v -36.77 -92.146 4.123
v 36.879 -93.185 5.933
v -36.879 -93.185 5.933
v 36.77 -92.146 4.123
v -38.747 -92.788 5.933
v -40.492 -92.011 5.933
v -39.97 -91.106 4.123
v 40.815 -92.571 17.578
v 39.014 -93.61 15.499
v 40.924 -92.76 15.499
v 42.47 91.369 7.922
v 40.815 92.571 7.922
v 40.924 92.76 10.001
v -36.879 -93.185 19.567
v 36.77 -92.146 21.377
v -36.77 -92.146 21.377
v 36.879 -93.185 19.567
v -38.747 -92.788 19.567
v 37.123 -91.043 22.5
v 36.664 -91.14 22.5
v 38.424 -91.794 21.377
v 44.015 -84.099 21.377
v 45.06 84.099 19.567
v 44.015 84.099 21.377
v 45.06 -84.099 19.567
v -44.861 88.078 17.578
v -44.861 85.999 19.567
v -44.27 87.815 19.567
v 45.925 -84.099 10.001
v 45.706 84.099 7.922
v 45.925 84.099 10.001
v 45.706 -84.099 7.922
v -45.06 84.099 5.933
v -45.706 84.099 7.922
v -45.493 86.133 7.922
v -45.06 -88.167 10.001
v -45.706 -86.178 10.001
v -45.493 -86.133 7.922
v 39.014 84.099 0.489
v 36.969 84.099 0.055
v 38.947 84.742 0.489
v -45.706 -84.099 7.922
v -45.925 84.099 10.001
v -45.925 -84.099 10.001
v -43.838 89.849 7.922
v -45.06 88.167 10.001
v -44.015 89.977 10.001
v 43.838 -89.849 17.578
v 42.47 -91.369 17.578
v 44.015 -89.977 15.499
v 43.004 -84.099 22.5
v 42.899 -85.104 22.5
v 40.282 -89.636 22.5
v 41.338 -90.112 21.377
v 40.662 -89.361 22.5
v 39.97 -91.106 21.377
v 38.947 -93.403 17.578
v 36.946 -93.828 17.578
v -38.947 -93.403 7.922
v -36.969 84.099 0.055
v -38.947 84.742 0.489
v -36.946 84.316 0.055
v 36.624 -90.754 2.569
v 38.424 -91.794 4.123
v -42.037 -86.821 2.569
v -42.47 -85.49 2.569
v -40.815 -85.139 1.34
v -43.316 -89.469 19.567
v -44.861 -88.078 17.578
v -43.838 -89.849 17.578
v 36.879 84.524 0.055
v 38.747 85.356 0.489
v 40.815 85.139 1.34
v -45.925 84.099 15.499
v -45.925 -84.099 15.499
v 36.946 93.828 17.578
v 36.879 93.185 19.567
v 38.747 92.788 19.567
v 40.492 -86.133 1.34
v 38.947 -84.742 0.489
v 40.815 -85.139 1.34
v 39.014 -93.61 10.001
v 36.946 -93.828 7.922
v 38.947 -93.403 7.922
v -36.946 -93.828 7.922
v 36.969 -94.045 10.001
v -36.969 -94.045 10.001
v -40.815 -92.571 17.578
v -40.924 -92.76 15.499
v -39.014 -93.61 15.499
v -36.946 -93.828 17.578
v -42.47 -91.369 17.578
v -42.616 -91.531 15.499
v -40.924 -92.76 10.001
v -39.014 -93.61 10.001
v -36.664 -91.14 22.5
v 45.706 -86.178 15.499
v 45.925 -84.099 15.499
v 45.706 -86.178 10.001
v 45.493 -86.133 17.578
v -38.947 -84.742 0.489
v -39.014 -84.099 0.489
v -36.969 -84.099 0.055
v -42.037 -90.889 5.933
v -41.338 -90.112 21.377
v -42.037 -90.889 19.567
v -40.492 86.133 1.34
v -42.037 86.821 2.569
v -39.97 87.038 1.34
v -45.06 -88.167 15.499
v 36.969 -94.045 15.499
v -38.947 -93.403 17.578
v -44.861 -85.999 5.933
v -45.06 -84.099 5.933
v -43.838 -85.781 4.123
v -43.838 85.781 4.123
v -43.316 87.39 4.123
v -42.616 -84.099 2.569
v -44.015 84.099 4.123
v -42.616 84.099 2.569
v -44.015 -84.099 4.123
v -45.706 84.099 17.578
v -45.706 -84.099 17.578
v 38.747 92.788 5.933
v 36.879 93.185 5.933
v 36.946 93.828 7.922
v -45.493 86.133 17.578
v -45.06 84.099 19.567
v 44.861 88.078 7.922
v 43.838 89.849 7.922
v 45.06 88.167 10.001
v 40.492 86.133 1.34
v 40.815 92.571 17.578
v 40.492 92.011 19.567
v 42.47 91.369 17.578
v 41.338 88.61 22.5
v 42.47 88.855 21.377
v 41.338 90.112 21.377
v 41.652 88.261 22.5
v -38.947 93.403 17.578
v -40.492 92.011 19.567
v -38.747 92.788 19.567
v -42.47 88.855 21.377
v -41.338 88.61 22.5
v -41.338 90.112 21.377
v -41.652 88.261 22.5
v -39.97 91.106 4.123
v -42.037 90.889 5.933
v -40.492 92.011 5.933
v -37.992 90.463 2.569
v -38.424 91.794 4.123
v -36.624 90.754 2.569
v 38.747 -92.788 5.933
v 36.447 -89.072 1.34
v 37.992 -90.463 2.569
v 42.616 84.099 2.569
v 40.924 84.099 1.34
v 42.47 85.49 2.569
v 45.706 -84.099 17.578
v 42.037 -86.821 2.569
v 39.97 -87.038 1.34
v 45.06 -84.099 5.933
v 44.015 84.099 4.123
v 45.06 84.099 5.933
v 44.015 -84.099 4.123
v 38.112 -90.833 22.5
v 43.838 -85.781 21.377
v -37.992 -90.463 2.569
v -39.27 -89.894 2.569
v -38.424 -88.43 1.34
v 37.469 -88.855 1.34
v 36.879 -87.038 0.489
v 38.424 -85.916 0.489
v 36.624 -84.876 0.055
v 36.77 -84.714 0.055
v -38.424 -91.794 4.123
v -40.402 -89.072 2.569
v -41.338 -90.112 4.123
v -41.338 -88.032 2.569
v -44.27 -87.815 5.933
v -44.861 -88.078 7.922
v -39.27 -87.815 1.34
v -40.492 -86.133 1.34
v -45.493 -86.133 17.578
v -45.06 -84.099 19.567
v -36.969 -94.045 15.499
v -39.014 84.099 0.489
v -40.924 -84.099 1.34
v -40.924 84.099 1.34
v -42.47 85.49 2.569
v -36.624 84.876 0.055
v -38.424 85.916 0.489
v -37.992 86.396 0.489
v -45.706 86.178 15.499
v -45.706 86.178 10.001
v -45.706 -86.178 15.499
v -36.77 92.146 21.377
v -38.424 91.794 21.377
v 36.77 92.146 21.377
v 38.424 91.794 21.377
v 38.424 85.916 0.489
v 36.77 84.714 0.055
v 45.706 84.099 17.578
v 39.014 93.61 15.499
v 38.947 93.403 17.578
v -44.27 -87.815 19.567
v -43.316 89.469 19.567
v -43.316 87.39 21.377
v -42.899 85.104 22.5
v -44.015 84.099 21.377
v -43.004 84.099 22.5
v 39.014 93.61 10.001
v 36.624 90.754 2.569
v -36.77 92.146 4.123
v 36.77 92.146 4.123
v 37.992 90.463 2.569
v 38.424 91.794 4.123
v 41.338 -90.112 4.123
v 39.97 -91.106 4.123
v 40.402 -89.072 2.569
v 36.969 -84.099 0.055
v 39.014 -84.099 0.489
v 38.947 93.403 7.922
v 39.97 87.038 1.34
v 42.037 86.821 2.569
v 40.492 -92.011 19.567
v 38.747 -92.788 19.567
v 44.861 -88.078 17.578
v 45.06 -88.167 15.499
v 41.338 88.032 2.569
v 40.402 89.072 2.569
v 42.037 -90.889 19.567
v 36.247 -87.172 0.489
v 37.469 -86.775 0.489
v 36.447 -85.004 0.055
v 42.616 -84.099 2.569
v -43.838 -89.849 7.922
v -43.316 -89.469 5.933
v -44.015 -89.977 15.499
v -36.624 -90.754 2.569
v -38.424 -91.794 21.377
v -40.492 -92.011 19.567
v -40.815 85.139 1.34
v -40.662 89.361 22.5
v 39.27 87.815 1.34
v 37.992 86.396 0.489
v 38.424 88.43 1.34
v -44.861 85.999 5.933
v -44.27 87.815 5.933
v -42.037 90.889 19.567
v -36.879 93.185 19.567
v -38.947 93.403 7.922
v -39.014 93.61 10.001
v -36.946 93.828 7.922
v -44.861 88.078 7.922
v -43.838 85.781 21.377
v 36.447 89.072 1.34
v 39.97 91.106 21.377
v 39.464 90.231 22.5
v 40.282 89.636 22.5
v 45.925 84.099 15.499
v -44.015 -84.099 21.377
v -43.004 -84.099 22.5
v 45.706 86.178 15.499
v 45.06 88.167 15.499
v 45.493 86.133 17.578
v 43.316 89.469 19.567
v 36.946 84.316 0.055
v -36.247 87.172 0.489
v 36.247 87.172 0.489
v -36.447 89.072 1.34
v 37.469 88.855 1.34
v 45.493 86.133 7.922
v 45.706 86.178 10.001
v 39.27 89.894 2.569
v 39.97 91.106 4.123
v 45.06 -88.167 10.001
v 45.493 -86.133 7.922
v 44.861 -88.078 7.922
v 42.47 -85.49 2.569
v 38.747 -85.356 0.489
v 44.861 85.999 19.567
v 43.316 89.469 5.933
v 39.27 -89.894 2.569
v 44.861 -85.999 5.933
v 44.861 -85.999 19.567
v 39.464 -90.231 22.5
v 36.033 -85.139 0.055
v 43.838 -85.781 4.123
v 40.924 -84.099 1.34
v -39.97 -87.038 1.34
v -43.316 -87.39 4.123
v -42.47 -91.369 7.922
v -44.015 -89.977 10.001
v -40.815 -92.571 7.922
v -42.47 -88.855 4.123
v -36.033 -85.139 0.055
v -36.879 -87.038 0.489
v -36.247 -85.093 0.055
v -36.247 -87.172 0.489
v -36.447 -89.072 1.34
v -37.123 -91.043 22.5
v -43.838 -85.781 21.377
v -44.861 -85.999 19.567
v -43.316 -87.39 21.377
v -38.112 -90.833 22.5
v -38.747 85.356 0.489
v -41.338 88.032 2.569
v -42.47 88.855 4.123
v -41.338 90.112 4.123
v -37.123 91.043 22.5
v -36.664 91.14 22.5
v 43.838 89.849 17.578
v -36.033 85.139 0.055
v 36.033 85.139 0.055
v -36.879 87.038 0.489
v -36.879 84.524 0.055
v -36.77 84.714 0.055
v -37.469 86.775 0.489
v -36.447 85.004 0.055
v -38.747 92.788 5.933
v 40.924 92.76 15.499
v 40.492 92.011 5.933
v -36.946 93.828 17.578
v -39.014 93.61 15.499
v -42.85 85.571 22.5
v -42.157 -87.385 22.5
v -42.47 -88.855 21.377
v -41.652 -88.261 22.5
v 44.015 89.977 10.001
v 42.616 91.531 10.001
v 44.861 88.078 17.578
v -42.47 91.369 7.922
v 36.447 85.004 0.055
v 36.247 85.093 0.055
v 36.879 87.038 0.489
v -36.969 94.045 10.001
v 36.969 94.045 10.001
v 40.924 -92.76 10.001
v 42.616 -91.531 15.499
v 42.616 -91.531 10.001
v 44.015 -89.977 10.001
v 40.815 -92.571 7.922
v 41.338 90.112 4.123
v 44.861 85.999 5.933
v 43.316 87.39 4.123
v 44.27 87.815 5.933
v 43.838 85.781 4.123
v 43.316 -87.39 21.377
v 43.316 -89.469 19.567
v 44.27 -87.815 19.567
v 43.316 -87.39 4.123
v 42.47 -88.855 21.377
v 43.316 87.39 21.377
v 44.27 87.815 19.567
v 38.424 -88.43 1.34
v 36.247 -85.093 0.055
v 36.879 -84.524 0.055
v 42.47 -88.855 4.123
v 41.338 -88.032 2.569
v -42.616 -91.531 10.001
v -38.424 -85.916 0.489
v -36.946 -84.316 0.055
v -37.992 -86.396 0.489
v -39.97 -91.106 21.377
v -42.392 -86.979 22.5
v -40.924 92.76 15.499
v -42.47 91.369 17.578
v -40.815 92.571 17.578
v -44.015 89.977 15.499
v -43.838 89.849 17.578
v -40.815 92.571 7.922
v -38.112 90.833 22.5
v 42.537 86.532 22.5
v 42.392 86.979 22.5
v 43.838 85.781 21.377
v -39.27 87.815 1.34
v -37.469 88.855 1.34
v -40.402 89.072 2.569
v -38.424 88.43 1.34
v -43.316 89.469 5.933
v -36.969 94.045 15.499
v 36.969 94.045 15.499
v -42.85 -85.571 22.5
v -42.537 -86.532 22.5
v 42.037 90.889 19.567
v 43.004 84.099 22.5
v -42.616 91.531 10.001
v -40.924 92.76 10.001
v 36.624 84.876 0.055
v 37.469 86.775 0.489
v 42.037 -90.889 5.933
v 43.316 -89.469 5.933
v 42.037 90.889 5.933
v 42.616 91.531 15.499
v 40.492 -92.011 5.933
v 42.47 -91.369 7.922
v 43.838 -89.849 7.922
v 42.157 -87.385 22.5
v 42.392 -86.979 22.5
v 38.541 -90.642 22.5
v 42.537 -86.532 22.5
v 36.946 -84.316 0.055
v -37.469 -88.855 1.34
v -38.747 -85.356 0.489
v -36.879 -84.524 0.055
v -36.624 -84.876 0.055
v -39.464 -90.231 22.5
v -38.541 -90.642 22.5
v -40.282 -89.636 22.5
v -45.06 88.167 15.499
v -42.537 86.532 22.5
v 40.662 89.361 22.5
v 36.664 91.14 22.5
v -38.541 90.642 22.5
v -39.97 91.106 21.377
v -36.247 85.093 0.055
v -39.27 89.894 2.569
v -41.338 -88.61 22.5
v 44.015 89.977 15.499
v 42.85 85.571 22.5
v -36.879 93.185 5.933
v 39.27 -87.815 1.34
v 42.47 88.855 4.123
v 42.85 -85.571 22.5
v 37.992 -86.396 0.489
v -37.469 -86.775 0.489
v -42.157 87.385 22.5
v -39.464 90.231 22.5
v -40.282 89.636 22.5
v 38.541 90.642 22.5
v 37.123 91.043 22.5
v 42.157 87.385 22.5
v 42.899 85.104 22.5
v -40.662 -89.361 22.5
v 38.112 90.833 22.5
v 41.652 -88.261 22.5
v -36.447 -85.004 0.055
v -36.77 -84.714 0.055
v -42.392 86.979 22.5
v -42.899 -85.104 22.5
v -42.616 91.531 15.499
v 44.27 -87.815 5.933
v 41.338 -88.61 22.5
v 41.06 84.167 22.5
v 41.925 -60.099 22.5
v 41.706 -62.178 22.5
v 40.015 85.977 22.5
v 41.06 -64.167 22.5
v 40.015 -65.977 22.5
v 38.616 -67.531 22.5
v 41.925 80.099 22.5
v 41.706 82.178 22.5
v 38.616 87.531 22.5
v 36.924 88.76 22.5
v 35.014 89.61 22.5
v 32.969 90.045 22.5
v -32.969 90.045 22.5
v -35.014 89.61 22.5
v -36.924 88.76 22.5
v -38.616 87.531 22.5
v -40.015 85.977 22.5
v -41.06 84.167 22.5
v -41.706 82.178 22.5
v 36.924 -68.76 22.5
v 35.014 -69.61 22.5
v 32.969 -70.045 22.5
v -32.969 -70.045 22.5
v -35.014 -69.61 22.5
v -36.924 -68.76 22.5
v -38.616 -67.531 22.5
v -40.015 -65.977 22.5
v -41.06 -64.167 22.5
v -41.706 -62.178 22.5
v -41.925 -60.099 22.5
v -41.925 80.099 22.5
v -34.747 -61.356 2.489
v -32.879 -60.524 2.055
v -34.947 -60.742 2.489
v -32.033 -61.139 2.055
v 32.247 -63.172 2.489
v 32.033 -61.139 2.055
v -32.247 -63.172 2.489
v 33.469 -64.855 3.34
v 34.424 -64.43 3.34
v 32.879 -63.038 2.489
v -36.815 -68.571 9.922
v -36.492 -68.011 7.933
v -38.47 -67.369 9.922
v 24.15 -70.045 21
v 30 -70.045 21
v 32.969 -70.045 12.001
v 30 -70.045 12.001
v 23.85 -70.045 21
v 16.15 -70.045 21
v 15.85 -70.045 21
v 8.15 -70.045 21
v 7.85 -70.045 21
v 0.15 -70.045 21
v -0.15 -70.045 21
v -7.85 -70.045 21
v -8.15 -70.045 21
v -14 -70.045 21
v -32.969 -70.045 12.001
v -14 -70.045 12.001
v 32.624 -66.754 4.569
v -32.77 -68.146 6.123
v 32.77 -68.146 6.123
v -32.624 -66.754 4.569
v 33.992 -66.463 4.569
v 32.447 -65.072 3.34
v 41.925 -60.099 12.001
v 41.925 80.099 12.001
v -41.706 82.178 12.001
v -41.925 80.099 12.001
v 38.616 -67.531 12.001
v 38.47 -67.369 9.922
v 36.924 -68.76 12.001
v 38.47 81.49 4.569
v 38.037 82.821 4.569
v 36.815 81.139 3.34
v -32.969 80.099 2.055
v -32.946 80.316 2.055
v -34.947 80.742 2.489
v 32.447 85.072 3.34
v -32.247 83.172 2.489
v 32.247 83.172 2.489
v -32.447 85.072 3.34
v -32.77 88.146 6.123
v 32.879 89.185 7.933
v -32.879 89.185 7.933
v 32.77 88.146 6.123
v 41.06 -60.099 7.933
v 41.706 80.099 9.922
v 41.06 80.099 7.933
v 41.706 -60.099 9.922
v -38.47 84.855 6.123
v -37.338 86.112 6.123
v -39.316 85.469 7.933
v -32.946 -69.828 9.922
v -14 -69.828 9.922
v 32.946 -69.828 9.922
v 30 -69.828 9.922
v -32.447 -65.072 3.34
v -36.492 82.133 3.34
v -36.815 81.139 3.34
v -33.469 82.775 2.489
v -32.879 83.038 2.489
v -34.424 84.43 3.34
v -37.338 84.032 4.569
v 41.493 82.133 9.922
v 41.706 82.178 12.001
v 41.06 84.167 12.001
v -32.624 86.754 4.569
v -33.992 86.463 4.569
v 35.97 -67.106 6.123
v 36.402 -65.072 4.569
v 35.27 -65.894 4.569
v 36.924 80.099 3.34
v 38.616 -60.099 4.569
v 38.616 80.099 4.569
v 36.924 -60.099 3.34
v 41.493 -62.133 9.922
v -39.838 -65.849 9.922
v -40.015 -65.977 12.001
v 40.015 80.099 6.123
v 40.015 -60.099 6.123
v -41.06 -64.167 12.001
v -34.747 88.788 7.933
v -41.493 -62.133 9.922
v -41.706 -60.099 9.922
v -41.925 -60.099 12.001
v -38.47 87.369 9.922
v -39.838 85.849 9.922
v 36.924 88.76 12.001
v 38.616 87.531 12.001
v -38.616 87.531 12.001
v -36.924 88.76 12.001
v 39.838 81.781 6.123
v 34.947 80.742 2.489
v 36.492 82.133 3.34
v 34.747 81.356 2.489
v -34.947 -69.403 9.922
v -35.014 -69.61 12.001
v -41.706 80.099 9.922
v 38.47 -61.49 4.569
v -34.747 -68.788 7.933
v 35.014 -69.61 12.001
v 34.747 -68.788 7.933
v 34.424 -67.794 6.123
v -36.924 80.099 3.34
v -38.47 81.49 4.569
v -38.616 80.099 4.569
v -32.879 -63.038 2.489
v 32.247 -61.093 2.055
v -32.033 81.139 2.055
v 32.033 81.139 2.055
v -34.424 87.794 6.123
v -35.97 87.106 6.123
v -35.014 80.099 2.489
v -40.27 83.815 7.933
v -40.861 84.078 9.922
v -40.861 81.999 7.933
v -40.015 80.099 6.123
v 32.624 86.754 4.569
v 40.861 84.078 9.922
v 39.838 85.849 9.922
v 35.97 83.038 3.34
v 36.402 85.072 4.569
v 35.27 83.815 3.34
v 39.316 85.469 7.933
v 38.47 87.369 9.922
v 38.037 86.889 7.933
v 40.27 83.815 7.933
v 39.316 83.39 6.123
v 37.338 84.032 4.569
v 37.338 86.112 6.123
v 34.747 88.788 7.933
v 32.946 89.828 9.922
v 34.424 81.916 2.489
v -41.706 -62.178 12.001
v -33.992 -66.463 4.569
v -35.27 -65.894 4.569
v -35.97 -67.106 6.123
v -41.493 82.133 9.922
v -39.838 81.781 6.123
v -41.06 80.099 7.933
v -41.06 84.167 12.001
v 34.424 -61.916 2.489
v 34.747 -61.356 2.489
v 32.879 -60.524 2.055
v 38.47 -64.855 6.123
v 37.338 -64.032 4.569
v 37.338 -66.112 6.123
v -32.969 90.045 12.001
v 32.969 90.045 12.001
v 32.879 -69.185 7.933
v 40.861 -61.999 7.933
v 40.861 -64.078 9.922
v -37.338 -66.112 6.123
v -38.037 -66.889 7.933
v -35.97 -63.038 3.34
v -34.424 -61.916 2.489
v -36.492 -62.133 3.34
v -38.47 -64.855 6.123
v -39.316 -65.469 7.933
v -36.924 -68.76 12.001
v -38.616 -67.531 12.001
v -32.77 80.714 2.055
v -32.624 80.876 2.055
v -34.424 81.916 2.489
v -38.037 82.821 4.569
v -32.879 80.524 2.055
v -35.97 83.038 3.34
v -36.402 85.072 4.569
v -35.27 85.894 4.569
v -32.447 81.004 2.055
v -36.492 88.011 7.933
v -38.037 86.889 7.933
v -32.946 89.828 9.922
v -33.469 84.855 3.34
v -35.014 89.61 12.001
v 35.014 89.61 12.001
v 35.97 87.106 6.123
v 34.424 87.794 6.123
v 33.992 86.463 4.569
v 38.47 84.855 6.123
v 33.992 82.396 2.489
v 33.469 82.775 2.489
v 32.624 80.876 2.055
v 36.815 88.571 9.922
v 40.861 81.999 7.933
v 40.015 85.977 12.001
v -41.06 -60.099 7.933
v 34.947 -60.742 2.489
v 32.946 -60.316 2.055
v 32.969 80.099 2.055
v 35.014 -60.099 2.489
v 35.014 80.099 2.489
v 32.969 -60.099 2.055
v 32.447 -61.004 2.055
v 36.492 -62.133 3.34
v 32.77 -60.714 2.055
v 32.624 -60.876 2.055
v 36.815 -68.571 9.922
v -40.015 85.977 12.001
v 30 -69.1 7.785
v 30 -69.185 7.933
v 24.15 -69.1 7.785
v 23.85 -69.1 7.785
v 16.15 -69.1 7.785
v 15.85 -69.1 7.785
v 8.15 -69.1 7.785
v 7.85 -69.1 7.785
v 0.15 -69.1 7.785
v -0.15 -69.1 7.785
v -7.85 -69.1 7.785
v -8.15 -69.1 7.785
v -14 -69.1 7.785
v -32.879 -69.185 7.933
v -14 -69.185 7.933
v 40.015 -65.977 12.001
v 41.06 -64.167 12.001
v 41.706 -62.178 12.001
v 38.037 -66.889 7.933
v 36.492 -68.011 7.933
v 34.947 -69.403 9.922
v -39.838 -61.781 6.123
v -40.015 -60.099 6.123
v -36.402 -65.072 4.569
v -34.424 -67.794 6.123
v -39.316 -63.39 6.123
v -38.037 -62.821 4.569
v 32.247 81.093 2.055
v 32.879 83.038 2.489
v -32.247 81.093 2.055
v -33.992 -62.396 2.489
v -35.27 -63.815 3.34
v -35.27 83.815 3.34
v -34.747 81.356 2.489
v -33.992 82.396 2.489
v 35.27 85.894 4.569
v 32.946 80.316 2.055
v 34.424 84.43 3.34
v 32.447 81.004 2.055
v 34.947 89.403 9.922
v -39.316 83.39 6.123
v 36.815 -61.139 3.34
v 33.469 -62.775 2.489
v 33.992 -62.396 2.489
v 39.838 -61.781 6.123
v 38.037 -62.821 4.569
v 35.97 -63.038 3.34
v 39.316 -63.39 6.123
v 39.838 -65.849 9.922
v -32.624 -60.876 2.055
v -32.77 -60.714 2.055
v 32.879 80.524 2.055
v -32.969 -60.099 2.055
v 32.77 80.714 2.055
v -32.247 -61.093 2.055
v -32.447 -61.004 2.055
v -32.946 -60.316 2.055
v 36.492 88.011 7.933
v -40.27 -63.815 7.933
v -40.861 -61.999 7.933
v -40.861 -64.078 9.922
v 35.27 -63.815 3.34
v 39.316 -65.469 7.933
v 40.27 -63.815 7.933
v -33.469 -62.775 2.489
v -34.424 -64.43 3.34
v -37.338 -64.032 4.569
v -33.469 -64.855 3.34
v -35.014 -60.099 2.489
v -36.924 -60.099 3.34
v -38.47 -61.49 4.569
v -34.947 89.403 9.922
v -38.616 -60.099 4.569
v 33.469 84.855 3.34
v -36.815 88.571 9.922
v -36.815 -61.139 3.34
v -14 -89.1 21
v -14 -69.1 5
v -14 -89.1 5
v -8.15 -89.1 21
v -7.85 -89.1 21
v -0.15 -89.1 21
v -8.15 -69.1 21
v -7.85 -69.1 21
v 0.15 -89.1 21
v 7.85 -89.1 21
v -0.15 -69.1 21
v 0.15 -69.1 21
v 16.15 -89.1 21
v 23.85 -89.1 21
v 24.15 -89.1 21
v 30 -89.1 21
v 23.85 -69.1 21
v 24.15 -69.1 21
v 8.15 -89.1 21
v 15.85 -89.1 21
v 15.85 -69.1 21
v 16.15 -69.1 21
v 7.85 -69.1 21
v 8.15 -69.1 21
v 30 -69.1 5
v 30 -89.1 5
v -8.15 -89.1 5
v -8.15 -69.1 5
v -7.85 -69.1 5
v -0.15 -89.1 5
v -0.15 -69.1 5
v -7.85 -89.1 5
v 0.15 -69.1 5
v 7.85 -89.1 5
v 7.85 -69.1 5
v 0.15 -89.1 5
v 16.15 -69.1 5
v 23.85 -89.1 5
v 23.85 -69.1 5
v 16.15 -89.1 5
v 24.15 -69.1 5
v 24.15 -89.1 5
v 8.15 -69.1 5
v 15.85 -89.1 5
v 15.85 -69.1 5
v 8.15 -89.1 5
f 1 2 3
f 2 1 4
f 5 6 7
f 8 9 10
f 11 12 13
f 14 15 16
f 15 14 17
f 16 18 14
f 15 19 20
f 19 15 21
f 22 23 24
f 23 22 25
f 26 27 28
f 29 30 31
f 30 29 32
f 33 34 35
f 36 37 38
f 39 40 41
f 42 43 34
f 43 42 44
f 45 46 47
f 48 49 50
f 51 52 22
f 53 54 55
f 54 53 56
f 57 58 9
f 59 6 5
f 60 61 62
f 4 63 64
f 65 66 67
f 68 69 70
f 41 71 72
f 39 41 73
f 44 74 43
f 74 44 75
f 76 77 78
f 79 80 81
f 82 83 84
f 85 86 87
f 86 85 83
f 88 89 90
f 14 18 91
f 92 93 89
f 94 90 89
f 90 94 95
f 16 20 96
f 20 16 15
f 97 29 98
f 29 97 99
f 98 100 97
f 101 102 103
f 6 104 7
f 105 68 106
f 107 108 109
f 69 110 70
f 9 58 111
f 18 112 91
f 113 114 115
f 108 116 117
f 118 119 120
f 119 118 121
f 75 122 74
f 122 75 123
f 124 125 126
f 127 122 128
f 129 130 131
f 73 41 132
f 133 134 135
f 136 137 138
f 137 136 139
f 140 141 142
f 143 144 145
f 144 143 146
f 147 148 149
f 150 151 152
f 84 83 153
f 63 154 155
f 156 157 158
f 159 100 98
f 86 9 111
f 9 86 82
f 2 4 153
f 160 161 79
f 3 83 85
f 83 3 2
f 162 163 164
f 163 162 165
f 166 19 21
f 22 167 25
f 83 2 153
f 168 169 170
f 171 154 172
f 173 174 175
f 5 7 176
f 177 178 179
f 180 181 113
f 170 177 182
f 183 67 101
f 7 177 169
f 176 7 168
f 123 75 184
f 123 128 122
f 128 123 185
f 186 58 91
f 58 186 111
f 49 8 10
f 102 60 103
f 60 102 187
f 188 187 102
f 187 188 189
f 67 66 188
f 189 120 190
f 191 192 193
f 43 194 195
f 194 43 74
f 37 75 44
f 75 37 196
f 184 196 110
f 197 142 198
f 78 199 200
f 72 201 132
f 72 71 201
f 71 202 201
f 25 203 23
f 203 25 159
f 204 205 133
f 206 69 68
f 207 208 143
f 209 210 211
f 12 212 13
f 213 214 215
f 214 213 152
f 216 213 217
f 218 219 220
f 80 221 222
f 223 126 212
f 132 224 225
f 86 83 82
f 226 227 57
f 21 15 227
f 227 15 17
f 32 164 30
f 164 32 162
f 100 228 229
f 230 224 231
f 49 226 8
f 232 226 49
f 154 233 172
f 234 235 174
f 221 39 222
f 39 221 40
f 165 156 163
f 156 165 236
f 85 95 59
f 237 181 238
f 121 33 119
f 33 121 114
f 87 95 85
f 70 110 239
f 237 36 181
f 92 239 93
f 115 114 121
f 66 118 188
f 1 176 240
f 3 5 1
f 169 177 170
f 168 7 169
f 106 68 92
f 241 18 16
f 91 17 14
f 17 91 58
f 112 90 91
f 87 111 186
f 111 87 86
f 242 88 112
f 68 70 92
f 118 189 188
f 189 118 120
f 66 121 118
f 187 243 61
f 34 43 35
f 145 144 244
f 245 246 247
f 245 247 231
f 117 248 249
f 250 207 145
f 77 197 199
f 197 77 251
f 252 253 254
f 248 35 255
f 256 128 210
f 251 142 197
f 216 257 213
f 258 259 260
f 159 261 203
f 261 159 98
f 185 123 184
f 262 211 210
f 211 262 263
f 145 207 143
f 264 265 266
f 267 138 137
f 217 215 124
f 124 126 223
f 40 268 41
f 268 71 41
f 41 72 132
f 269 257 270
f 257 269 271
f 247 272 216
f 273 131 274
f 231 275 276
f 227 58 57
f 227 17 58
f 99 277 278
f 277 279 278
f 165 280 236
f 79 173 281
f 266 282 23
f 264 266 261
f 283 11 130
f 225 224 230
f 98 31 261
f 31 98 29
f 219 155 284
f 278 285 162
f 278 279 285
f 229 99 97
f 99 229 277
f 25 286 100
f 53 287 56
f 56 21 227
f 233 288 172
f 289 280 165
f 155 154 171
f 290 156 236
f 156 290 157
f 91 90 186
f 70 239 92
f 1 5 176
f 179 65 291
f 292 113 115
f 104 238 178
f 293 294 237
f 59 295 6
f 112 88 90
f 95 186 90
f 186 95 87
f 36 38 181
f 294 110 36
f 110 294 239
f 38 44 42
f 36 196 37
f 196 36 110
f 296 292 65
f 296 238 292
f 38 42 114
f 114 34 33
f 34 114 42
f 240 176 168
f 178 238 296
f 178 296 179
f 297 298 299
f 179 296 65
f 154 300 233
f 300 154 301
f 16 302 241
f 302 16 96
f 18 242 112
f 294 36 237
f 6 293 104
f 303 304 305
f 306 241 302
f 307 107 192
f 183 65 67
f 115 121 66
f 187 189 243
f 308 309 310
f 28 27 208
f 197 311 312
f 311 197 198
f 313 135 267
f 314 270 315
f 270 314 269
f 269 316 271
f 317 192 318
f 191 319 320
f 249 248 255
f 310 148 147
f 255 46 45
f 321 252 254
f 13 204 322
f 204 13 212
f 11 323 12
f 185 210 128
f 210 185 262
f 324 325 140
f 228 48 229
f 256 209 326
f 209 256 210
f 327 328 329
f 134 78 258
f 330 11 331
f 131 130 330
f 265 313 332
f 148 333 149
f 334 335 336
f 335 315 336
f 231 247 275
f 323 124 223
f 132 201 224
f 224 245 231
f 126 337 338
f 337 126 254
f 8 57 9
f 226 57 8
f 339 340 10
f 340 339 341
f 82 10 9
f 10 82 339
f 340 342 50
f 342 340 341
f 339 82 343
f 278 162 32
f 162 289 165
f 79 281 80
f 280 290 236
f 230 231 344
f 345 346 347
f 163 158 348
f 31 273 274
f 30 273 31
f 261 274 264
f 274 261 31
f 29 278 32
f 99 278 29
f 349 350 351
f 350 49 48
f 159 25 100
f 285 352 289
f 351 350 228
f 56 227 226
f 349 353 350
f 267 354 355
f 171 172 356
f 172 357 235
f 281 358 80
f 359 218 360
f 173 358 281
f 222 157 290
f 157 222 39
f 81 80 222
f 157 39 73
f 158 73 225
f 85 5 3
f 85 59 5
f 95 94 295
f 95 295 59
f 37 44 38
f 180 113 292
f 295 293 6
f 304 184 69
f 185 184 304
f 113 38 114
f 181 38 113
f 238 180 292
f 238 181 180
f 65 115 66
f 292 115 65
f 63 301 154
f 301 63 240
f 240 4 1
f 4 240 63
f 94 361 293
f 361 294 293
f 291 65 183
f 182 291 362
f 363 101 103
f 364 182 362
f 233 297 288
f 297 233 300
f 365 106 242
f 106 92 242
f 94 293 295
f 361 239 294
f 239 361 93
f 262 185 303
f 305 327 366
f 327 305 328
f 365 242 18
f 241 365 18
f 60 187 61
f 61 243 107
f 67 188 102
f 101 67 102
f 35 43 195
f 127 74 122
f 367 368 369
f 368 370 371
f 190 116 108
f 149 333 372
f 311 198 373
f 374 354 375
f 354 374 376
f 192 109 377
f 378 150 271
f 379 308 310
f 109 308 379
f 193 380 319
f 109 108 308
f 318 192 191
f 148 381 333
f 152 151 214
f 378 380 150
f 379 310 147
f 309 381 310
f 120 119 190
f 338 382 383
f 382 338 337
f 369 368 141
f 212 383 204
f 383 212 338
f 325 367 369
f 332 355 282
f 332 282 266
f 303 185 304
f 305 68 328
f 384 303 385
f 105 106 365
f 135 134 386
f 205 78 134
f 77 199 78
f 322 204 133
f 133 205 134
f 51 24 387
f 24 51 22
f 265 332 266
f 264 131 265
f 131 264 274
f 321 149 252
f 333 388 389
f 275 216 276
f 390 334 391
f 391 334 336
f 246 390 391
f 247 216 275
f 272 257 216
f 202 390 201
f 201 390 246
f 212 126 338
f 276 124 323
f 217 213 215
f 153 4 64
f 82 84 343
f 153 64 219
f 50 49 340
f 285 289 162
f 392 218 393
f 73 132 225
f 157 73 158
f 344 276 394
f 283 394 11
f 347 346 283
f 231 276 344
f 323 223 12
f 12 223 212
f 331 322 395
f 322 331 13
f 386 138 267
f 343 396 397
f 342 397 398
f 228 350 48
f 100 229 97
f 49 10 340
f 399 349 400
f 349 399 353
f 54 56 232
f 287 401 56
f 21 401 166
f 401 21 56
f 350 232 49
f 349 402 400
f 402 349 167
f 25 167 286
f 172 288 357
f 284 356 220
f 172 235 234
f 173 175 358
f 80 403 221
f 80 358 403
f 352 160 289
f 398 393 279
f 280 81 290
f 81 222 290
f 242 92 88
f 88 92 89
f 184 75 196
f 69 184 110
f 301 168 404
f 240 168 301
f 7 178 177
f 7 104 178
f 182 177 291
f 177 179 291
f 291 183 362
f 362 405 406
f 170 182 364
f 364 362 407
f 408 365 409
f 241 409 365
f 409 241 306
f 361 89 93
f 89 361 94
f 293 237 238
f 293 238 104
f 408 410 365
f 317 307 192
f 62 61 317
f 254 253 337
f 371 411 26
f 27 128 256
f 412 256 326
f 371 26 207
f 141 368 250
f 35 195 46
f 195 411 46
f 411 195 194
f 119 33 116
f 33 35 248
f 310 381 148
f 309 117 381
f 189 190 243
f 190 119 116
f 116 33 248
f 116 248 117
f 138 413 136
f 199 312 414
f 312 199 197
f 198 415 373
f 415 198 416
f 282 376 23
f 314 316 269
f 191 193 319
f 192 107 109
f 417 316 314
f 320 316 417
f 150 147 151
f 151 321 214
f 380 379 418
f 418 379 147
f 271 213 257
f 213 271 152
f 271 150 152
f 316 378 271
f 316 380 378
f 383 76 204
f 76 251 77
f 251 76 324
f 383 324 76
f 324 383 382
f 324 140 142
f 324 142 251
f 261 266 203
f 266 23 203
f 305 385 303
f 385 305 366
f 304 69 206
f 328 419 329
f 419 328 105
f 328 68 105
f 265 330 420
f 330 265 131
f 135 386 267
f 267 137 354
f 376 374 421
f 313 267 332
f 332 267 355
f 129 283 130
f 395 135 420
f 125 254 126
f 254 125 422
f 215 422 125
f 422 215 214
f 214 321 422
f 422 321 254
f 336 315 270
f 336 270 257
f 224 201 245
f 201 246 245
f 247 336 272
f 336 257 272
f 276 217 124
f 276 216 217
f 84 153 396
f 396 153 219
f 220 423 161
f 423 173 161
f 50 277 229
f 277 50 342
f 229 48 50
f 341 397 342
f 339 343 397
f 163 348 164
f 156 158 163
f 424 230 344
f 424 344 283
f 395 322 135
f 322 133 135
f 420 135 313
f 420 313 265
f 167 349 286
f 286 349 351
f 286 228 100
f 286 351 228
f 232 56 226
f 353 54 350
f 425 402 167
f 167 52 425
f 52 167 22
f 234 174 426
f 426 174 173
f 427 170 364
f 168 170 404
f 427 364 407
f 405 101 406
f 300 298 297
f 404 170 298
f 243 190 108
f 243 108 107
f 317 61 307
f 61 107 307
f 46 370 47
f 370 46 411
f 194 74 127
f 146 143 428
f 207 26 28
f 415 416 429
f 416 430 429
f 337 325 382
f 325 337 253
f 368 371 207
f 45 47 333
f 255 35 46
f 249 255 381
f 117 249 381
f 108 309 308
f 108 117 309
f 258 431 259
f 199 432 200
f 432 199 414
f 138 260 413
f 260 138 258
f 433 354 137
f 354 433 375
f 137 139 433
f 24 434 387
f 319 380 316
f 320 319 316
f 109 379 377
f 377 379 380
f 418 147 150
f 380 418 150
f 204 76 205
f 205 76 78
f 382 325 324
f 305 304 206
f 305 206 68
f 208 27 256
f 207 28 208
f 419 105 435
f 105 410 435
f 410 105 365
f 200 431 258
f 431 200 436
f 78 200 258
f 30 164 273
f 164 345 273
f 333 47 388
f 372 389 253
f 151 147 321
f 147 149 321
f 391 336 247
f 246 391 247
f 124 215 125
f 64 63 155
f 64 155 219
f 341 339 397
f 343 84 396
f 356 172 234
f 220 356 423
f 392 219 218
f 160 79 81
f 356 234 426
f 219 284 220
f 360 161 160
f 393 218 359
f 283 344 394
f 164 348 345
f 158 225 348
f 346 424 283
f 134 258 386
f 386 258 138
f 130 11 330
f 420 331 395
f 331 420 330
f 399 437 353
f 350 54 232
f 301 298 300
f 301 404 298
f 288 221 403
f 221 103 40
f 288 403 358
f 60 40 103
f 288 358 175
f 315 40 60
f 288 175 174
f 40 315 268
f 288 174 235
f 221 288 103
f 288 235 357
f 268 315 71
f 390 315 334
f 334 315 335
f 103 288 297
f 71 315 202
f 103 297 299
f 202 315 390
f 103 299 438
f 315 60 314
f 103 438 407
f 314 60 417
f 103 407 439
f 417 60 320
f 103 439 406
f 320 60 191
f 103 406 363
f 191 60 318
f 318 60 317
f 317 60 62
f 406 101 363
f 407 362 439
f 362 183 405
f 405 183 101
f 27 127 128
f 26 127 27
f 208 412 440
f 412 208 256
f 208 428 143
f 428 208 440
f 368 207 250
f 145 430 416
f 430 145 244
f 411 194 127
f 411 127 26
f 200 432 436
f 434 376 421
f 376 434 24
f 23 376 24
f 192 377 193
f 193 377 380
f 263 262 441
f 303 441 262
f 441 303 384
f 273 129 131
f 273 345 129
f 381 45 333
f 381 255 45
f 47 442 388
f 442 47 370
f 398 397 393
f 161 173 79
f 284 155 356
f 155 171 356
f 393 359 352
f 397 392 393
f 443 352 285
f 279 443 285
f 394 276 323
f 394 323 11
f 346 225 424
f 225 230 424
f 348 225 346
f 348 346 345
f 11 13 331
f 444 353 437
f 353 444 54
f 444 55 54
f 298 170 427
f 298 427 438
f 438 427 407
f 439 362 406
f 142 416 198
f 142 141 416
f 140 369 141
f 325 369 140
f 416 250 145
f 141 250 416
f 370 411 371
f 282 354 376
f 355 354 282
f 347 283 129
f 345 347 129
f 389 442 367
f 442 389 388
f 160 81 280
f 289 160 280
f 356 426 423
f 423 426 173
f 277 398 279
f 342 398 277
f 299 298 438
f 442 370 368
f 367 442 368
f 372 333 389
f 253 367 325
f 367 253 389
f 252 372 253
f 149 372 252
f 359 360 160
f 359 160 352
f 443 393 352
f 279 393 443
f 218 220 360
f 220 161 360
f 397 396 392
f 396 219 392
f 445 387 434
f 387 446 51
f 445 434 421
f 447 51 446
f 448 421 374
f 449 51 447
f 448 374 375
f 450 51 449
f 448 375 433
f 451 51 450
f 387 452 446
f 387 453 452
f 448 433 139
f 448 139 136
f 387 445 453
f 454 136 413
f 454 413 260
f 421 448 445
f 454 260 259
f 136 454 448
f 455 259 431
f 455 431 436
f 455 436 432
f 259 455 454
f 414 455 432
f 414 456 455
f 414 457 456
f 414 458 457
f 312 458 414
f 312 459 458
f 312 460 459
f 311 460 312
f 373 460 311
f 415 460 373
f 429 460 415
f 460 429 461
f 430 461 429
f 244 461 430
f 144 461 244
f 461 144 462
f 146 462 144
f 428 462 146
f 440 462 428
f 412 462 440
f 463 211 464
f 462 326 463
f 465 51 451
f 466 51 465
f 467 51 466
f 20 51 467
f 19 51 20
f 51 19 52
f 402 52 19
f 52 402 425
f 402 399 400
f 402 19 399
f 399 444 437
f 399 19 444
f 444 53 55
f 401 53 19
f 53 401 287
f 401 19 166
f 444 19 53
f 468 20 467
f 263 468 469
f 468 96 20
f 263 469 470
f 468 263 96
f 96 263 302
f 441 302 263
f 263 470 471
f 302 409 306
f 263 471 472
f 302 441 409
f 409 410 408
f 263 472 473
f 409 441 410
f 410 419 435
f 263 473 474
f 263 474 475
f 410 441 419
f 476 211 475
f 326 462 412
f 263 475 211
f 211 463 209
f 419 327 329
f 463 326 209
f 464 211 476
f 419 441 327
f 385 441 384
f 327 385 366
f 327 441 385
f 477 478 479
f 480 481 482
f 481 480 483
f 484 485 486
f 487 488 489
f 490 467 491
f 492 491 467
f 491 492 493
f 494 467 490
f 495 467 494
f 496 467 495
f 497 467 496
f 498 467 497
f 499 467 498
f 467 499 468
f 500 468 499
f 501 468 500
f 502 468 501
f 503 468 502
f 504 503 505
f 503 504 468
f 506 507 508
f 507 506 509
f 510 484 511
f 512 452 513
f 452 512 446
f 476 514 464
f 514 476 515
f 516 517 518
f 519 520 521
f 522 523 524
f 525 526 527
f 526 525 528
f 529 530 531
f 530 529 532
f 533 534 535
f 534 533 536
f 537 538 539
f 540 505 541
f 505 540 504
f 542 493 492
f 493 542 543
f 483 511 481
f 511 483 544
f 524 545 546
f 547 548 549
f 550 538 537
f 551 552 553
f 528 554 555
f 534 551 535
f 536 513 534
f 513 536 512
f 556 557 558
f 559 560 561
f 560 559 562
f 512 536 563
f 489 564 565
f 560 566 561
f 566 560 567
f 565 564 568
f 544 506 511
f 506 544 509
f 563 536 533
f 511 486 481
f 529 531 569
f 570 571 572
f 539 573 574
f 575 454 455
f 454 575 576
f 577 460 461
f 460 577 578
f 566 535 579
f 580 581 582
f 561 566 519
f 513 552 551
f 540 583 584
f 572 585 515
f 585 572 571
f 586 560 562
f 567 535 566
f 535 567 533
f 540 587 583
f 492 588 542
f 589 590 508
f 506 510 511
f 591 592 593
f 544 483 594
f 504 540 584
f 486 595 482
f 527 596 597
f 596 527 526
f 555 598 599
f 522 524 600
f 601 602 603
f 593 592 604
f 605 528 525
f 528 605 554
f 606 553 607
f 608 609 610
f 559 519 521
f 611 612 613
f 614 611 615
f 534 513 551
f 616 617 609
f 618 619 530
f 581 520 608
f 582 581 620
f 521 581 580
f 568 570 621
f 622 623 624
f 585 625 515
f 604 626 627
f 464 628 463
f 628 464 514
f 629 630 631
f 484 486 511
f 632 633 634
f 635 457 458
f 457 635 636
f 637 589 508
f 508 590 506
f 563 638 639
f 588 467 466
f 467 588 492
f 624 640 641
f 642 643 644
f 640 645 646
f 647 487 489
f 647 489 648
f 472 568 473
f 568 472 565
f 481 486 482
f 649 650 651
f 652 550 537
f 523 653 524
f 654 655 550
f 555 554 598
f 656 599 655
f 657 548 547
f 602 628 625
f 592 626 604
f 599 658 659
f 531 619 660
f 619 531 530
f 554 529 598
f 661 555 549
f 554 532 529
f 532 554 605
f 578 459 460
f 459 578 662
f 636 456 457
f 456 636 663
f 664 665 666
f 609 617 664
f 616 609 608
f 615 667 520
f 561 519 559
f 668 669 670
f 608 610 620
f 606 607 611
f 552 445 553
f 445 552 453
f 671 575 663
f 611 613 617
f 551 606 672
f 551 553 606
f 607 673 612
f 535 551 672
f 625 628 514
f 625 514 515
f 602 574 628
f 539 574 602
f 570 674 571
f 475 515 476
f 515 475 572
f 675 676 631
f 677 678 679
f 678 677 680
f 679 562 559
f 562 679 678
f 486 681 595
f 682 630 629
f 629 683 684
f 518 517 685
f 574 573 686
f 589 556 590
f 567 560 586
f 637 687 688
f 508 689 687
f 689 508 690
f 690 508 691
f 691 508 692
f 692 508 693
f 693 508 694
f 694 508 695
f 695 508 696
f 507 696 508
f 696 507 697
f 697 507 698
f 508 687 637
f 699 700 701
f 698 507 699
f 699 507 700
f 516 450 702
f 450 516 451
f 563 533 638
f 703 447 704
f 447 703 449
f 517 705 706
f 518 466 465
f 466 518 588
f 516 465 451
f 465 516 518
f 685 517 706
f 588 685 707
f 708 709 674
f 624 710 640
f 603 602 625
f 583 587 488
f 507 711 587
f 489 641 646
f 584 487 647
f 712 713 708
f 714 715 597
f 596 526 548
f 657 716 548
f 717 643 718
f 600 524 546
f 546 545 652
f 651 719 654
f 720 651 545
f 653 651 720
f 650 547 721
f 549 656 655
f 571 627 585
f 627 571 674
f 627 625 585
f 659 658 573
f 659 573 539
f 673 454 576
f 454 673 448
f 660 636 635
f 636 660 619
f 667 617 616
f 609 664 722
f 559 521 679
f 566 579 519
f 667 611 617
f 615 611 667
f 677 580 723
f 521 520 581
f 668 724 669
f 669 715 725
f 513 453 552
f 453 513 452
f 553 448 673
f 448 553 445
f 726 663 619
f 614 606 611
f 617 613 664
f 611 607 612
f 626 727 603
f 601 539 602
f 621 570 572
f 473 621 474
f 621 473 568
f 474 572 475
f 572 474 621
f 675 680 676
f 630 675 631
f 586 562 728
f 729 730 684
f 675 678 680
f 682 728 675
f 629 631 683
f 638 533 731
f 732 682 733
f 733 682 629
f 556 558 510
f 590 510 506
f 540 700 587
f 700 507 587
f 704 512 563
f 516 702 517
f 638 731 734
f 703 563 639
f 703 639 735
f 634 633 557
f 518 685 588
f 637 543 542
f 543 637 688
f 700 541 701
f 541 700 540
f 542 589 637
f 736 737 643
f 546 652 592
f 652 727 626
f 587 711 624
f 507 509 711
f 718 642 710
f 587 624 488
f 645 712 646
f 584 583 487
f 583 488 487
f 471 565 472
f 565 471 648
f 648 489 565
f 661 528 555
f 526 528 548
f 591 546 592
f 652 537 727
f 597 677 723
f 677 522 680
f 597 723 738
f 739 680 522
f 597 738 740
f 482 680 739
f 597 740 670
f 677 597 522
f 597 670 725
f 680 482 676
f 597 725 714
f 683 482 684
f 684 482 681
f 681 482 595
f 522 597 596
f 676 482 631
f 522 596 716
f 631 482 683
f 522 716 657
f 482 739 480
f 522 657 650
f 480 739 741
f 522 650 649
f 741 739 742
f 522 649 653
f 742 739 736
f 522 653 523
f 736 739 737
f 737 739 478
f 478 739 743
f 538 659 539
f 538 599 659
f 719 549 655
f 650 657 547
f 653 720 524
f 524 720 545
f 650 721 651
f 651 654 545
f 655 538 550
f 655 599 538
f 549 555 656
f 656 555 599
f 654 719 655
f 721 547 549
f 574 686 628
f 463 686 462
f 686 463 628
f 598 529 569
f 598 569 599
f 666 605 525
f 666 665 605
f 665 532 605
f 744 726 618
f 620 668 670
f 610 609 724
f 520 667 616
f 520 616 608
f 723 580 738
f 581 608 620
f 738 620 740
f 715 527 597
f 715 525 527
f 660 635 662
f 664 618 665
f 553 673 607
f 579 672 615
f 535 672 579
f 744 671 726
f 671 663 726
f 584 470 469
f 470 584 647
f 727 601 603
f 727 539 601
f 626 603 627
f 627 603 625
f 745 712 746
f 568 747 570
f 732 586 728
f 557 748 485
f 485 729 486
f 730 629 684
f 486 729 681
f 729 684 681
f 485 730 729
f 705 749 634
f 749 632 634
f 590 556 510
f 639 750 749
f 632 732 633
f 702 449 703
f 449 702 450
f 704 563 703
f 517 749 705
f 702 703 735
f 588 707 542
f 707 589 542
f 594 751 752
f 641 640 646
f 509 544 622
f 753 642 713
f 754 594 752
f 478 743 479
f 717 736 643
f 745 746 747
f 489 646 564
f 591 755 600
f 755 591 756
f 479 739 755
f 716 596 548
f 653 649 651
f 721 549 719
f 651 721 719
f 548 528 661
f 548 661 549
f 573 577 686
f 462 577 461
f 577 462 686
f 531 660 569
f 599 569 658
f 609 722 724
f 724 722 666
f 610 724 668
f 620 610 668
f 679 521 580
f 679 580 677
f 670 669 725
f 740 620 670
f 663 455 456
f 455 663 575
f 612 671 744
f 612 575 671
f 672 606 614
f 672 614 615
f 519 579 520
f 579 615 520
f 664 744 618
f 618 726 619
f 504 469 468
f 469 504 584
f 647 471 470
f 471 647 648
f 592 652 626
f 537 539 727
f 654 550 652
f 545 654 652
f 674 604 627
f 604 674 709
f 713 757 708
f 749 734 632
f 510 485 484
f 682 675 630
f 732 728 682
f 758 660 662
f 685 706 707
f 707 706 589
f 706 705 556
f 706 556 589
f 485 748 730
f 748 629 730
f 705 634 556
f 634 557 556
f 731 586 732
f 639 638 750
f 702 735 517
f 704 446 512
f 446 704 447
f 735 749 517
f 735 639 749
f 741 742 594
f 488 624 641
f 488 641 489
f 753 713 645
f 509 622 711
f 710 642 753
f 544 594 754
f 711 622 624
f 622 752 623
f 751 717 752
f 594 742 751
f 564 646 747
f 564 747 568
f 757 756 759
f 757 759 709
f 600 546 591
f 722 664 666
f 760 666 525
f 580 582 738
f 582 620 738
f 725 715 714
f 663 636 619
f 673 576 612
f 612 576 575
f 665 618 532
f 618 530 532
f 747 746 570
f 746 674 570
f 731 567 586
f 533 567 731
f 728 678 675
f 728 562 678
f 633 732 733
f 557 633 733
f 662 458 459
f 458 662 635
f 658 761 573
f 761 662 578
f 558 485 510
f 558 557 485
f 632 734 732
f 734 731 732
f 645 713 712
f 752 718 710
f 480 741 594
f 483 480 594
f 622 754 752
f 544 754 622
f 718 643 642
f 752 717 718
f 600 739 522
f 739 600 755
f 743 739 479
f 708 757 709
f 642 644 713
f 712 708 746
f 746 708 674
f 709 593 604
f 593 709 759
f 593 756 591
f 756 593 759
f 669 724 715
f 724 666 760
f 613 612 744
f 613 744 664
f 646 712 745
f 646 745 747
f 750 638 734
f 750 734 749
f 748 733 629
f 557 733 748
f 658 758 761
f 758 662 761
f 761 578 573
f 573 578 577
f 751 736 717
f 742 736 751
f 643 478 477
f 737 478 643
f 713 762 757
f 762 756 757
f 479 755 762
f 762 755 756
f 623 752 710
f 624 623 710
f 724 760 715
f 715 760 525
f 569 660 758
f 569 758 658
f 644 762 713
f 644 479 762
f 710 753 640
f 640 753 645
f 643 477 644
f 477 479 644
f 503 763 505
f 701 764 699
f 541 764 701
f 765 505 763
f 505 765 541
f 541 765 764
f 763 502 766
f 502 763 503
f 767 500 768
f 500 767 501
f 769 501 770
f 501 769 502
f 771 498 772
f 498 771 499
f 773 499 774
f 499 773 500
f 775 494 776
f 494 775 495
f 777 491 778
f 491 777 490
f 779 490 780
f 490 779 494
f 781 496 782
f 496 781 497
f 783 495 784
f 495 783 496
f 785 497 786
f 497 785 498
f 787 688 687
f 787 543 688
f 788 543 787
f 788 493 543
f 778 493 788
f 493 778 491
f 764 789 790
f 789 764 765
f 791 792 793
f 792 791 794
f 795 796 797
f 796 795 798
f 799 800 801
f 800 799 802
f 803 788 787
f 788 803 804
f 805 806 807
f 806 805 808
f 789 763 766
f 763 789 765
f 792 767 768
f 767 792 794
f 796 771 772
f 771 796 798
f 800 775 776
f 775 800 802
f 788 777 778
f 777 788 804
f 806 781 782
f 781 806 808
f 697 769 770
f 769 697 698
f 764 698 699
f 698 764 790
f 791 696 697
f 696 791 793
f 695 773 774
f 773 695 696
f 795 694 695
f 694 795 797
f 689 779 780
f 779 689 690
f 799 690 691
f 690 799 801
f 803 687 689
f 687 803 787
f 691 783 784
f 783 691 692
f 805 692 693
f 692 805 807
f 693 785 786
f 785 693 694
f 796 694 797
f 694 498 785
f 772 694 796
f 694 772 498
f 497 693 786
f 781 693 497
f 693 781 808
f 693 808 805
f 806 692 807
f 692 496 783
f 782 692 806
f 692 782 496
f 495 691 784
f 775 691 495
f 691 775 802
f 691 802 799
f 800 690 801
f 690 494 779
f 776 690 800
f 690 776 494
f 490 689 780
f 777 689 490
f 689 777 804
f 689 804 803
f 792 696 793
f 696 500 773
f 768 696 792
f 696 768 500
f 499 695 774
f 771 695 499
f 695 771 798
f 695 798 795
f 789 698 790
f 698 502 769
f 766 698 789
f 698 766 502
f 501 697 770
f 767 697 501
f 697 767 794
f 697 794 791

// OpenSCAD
module unroundedCube(width,height,depth,radius)
{
    echo("unroundedCube: ",width,",",height,",",depth,",",radius);
    
    translate([-width/2.0,-height/2.0,0]) cube([width,height,depth]);
}

module roundedCube(width,height,depth,radius)
{
    echo("roundedCube: ",width,",",height,",",depth,",",radius);
    radius = 10.001;
    width = width - radius*2;
    height= height - radius*2;
    depth = depth;
    
    hull() 
    {
        
        // bottom plane 
        translate([-width/2,-height/2,radius])
        sphere(r=radius);    
        translate([width/2,-height/2,radius])
        sphere(r=radius);
        translate([-width/2,height/2,radius])
        sphere(r=radius);
        translate([width/2,height/2,radius])
        sphere(r=radius);
        
       
        // upper plane
        translate([-width/2,-height/2,depth-radius])
        sphere(r=radius);
        translate([width/2,-height/2,depth-radius])
        sphere(r=radius);
        translate([-width/2,height/2,depth-radius])
        sphere(r=radius);
        translate([width/2,height/2,depth-radius])
        sphere(r=radius);

    }
}

/*
Nexus 6: 10.5mm deep, 83.25 x 159.5 mm 
about a 9mm radius
camera is 23mm from top of phone, about 18mm diameter

sdr is 13mm thick, 27.1 x 85 long without a cable
about 130mm with the bent USB OTG cable

right angle OTG cable adds about 20mm at bottom of phone

*/
// Gonna go a little loose and fix it later
phoneX = 83.85; phoneY = 160.2; phoneZ = 10.5;
phoneRadius = 10;
usbY = 20;
sdrX = 27.1; sdrY = 85; sdrZ = 13;
sdrUSBY = 45;

// Start with a case maybe 3mm thicker than phone and floor 2mm
caseWall = 4; caseFloor = 2;

difference()
{
    // Bottom of the case
    translate([0,0,0]) roundedCube(phoneX+caseWall*2,phoneY+caseWall*2+usbY,phoneZ+sdrZ+caseFloor,phoneRadius);

    //%unroundedCube(phoneX+caseWall*2,phoneY+caseWall*2,phoneZ+sdrZ+caseFloor,phoneRadius+1.5);
 
    // chop it off flat across
    translate([-200,-200,phoneZ+sdrZ+caseFloor-3]) cube([400,400,20]);
    // Dig the cutout for the phone
    //translate([0,0,caseFloor+sdrZ]) roundedCube(phoneX,phoneY,phoneZ*2);
    // Dig out space for the SDR
//    translate([0,0,caseFloor]) unroundedCube(sdrX,sdrY,sdrZ*2);
    translate([0,usbY/2,caseFloor]) roundedCube(phoneX,phoneY,phoneZ*4,phoneRadius);

//    Notch out space for the usb OTG cable

   translate([8,-phoneY/2+1,5]) unroundedCube(44,20,16,0);

// a little support
    

}
//   #color("red") translate([-phoneX/2.0,-phoneY/2.0,caseFloor+sdrZ]) cube([phoneX,phoneY,phoneZ*2]);

   translate([8,-phoneY/2+1,5]) unroundedCube(0.3,20,16,0);
   translate([16,-phoneY/2+1,5]) unroundedCube(0.3,20,16,0);
   translate([24,-phoneY/2+1,5]) unroundedCube(0.3,20,16,0);
   translate([0,-phoneY/2+1,5]) unroundedCube(0.3,20,16,0);
   translate([-8,-phoneY/2+1,5]) unroundedCube(0.3,20,16,0);
